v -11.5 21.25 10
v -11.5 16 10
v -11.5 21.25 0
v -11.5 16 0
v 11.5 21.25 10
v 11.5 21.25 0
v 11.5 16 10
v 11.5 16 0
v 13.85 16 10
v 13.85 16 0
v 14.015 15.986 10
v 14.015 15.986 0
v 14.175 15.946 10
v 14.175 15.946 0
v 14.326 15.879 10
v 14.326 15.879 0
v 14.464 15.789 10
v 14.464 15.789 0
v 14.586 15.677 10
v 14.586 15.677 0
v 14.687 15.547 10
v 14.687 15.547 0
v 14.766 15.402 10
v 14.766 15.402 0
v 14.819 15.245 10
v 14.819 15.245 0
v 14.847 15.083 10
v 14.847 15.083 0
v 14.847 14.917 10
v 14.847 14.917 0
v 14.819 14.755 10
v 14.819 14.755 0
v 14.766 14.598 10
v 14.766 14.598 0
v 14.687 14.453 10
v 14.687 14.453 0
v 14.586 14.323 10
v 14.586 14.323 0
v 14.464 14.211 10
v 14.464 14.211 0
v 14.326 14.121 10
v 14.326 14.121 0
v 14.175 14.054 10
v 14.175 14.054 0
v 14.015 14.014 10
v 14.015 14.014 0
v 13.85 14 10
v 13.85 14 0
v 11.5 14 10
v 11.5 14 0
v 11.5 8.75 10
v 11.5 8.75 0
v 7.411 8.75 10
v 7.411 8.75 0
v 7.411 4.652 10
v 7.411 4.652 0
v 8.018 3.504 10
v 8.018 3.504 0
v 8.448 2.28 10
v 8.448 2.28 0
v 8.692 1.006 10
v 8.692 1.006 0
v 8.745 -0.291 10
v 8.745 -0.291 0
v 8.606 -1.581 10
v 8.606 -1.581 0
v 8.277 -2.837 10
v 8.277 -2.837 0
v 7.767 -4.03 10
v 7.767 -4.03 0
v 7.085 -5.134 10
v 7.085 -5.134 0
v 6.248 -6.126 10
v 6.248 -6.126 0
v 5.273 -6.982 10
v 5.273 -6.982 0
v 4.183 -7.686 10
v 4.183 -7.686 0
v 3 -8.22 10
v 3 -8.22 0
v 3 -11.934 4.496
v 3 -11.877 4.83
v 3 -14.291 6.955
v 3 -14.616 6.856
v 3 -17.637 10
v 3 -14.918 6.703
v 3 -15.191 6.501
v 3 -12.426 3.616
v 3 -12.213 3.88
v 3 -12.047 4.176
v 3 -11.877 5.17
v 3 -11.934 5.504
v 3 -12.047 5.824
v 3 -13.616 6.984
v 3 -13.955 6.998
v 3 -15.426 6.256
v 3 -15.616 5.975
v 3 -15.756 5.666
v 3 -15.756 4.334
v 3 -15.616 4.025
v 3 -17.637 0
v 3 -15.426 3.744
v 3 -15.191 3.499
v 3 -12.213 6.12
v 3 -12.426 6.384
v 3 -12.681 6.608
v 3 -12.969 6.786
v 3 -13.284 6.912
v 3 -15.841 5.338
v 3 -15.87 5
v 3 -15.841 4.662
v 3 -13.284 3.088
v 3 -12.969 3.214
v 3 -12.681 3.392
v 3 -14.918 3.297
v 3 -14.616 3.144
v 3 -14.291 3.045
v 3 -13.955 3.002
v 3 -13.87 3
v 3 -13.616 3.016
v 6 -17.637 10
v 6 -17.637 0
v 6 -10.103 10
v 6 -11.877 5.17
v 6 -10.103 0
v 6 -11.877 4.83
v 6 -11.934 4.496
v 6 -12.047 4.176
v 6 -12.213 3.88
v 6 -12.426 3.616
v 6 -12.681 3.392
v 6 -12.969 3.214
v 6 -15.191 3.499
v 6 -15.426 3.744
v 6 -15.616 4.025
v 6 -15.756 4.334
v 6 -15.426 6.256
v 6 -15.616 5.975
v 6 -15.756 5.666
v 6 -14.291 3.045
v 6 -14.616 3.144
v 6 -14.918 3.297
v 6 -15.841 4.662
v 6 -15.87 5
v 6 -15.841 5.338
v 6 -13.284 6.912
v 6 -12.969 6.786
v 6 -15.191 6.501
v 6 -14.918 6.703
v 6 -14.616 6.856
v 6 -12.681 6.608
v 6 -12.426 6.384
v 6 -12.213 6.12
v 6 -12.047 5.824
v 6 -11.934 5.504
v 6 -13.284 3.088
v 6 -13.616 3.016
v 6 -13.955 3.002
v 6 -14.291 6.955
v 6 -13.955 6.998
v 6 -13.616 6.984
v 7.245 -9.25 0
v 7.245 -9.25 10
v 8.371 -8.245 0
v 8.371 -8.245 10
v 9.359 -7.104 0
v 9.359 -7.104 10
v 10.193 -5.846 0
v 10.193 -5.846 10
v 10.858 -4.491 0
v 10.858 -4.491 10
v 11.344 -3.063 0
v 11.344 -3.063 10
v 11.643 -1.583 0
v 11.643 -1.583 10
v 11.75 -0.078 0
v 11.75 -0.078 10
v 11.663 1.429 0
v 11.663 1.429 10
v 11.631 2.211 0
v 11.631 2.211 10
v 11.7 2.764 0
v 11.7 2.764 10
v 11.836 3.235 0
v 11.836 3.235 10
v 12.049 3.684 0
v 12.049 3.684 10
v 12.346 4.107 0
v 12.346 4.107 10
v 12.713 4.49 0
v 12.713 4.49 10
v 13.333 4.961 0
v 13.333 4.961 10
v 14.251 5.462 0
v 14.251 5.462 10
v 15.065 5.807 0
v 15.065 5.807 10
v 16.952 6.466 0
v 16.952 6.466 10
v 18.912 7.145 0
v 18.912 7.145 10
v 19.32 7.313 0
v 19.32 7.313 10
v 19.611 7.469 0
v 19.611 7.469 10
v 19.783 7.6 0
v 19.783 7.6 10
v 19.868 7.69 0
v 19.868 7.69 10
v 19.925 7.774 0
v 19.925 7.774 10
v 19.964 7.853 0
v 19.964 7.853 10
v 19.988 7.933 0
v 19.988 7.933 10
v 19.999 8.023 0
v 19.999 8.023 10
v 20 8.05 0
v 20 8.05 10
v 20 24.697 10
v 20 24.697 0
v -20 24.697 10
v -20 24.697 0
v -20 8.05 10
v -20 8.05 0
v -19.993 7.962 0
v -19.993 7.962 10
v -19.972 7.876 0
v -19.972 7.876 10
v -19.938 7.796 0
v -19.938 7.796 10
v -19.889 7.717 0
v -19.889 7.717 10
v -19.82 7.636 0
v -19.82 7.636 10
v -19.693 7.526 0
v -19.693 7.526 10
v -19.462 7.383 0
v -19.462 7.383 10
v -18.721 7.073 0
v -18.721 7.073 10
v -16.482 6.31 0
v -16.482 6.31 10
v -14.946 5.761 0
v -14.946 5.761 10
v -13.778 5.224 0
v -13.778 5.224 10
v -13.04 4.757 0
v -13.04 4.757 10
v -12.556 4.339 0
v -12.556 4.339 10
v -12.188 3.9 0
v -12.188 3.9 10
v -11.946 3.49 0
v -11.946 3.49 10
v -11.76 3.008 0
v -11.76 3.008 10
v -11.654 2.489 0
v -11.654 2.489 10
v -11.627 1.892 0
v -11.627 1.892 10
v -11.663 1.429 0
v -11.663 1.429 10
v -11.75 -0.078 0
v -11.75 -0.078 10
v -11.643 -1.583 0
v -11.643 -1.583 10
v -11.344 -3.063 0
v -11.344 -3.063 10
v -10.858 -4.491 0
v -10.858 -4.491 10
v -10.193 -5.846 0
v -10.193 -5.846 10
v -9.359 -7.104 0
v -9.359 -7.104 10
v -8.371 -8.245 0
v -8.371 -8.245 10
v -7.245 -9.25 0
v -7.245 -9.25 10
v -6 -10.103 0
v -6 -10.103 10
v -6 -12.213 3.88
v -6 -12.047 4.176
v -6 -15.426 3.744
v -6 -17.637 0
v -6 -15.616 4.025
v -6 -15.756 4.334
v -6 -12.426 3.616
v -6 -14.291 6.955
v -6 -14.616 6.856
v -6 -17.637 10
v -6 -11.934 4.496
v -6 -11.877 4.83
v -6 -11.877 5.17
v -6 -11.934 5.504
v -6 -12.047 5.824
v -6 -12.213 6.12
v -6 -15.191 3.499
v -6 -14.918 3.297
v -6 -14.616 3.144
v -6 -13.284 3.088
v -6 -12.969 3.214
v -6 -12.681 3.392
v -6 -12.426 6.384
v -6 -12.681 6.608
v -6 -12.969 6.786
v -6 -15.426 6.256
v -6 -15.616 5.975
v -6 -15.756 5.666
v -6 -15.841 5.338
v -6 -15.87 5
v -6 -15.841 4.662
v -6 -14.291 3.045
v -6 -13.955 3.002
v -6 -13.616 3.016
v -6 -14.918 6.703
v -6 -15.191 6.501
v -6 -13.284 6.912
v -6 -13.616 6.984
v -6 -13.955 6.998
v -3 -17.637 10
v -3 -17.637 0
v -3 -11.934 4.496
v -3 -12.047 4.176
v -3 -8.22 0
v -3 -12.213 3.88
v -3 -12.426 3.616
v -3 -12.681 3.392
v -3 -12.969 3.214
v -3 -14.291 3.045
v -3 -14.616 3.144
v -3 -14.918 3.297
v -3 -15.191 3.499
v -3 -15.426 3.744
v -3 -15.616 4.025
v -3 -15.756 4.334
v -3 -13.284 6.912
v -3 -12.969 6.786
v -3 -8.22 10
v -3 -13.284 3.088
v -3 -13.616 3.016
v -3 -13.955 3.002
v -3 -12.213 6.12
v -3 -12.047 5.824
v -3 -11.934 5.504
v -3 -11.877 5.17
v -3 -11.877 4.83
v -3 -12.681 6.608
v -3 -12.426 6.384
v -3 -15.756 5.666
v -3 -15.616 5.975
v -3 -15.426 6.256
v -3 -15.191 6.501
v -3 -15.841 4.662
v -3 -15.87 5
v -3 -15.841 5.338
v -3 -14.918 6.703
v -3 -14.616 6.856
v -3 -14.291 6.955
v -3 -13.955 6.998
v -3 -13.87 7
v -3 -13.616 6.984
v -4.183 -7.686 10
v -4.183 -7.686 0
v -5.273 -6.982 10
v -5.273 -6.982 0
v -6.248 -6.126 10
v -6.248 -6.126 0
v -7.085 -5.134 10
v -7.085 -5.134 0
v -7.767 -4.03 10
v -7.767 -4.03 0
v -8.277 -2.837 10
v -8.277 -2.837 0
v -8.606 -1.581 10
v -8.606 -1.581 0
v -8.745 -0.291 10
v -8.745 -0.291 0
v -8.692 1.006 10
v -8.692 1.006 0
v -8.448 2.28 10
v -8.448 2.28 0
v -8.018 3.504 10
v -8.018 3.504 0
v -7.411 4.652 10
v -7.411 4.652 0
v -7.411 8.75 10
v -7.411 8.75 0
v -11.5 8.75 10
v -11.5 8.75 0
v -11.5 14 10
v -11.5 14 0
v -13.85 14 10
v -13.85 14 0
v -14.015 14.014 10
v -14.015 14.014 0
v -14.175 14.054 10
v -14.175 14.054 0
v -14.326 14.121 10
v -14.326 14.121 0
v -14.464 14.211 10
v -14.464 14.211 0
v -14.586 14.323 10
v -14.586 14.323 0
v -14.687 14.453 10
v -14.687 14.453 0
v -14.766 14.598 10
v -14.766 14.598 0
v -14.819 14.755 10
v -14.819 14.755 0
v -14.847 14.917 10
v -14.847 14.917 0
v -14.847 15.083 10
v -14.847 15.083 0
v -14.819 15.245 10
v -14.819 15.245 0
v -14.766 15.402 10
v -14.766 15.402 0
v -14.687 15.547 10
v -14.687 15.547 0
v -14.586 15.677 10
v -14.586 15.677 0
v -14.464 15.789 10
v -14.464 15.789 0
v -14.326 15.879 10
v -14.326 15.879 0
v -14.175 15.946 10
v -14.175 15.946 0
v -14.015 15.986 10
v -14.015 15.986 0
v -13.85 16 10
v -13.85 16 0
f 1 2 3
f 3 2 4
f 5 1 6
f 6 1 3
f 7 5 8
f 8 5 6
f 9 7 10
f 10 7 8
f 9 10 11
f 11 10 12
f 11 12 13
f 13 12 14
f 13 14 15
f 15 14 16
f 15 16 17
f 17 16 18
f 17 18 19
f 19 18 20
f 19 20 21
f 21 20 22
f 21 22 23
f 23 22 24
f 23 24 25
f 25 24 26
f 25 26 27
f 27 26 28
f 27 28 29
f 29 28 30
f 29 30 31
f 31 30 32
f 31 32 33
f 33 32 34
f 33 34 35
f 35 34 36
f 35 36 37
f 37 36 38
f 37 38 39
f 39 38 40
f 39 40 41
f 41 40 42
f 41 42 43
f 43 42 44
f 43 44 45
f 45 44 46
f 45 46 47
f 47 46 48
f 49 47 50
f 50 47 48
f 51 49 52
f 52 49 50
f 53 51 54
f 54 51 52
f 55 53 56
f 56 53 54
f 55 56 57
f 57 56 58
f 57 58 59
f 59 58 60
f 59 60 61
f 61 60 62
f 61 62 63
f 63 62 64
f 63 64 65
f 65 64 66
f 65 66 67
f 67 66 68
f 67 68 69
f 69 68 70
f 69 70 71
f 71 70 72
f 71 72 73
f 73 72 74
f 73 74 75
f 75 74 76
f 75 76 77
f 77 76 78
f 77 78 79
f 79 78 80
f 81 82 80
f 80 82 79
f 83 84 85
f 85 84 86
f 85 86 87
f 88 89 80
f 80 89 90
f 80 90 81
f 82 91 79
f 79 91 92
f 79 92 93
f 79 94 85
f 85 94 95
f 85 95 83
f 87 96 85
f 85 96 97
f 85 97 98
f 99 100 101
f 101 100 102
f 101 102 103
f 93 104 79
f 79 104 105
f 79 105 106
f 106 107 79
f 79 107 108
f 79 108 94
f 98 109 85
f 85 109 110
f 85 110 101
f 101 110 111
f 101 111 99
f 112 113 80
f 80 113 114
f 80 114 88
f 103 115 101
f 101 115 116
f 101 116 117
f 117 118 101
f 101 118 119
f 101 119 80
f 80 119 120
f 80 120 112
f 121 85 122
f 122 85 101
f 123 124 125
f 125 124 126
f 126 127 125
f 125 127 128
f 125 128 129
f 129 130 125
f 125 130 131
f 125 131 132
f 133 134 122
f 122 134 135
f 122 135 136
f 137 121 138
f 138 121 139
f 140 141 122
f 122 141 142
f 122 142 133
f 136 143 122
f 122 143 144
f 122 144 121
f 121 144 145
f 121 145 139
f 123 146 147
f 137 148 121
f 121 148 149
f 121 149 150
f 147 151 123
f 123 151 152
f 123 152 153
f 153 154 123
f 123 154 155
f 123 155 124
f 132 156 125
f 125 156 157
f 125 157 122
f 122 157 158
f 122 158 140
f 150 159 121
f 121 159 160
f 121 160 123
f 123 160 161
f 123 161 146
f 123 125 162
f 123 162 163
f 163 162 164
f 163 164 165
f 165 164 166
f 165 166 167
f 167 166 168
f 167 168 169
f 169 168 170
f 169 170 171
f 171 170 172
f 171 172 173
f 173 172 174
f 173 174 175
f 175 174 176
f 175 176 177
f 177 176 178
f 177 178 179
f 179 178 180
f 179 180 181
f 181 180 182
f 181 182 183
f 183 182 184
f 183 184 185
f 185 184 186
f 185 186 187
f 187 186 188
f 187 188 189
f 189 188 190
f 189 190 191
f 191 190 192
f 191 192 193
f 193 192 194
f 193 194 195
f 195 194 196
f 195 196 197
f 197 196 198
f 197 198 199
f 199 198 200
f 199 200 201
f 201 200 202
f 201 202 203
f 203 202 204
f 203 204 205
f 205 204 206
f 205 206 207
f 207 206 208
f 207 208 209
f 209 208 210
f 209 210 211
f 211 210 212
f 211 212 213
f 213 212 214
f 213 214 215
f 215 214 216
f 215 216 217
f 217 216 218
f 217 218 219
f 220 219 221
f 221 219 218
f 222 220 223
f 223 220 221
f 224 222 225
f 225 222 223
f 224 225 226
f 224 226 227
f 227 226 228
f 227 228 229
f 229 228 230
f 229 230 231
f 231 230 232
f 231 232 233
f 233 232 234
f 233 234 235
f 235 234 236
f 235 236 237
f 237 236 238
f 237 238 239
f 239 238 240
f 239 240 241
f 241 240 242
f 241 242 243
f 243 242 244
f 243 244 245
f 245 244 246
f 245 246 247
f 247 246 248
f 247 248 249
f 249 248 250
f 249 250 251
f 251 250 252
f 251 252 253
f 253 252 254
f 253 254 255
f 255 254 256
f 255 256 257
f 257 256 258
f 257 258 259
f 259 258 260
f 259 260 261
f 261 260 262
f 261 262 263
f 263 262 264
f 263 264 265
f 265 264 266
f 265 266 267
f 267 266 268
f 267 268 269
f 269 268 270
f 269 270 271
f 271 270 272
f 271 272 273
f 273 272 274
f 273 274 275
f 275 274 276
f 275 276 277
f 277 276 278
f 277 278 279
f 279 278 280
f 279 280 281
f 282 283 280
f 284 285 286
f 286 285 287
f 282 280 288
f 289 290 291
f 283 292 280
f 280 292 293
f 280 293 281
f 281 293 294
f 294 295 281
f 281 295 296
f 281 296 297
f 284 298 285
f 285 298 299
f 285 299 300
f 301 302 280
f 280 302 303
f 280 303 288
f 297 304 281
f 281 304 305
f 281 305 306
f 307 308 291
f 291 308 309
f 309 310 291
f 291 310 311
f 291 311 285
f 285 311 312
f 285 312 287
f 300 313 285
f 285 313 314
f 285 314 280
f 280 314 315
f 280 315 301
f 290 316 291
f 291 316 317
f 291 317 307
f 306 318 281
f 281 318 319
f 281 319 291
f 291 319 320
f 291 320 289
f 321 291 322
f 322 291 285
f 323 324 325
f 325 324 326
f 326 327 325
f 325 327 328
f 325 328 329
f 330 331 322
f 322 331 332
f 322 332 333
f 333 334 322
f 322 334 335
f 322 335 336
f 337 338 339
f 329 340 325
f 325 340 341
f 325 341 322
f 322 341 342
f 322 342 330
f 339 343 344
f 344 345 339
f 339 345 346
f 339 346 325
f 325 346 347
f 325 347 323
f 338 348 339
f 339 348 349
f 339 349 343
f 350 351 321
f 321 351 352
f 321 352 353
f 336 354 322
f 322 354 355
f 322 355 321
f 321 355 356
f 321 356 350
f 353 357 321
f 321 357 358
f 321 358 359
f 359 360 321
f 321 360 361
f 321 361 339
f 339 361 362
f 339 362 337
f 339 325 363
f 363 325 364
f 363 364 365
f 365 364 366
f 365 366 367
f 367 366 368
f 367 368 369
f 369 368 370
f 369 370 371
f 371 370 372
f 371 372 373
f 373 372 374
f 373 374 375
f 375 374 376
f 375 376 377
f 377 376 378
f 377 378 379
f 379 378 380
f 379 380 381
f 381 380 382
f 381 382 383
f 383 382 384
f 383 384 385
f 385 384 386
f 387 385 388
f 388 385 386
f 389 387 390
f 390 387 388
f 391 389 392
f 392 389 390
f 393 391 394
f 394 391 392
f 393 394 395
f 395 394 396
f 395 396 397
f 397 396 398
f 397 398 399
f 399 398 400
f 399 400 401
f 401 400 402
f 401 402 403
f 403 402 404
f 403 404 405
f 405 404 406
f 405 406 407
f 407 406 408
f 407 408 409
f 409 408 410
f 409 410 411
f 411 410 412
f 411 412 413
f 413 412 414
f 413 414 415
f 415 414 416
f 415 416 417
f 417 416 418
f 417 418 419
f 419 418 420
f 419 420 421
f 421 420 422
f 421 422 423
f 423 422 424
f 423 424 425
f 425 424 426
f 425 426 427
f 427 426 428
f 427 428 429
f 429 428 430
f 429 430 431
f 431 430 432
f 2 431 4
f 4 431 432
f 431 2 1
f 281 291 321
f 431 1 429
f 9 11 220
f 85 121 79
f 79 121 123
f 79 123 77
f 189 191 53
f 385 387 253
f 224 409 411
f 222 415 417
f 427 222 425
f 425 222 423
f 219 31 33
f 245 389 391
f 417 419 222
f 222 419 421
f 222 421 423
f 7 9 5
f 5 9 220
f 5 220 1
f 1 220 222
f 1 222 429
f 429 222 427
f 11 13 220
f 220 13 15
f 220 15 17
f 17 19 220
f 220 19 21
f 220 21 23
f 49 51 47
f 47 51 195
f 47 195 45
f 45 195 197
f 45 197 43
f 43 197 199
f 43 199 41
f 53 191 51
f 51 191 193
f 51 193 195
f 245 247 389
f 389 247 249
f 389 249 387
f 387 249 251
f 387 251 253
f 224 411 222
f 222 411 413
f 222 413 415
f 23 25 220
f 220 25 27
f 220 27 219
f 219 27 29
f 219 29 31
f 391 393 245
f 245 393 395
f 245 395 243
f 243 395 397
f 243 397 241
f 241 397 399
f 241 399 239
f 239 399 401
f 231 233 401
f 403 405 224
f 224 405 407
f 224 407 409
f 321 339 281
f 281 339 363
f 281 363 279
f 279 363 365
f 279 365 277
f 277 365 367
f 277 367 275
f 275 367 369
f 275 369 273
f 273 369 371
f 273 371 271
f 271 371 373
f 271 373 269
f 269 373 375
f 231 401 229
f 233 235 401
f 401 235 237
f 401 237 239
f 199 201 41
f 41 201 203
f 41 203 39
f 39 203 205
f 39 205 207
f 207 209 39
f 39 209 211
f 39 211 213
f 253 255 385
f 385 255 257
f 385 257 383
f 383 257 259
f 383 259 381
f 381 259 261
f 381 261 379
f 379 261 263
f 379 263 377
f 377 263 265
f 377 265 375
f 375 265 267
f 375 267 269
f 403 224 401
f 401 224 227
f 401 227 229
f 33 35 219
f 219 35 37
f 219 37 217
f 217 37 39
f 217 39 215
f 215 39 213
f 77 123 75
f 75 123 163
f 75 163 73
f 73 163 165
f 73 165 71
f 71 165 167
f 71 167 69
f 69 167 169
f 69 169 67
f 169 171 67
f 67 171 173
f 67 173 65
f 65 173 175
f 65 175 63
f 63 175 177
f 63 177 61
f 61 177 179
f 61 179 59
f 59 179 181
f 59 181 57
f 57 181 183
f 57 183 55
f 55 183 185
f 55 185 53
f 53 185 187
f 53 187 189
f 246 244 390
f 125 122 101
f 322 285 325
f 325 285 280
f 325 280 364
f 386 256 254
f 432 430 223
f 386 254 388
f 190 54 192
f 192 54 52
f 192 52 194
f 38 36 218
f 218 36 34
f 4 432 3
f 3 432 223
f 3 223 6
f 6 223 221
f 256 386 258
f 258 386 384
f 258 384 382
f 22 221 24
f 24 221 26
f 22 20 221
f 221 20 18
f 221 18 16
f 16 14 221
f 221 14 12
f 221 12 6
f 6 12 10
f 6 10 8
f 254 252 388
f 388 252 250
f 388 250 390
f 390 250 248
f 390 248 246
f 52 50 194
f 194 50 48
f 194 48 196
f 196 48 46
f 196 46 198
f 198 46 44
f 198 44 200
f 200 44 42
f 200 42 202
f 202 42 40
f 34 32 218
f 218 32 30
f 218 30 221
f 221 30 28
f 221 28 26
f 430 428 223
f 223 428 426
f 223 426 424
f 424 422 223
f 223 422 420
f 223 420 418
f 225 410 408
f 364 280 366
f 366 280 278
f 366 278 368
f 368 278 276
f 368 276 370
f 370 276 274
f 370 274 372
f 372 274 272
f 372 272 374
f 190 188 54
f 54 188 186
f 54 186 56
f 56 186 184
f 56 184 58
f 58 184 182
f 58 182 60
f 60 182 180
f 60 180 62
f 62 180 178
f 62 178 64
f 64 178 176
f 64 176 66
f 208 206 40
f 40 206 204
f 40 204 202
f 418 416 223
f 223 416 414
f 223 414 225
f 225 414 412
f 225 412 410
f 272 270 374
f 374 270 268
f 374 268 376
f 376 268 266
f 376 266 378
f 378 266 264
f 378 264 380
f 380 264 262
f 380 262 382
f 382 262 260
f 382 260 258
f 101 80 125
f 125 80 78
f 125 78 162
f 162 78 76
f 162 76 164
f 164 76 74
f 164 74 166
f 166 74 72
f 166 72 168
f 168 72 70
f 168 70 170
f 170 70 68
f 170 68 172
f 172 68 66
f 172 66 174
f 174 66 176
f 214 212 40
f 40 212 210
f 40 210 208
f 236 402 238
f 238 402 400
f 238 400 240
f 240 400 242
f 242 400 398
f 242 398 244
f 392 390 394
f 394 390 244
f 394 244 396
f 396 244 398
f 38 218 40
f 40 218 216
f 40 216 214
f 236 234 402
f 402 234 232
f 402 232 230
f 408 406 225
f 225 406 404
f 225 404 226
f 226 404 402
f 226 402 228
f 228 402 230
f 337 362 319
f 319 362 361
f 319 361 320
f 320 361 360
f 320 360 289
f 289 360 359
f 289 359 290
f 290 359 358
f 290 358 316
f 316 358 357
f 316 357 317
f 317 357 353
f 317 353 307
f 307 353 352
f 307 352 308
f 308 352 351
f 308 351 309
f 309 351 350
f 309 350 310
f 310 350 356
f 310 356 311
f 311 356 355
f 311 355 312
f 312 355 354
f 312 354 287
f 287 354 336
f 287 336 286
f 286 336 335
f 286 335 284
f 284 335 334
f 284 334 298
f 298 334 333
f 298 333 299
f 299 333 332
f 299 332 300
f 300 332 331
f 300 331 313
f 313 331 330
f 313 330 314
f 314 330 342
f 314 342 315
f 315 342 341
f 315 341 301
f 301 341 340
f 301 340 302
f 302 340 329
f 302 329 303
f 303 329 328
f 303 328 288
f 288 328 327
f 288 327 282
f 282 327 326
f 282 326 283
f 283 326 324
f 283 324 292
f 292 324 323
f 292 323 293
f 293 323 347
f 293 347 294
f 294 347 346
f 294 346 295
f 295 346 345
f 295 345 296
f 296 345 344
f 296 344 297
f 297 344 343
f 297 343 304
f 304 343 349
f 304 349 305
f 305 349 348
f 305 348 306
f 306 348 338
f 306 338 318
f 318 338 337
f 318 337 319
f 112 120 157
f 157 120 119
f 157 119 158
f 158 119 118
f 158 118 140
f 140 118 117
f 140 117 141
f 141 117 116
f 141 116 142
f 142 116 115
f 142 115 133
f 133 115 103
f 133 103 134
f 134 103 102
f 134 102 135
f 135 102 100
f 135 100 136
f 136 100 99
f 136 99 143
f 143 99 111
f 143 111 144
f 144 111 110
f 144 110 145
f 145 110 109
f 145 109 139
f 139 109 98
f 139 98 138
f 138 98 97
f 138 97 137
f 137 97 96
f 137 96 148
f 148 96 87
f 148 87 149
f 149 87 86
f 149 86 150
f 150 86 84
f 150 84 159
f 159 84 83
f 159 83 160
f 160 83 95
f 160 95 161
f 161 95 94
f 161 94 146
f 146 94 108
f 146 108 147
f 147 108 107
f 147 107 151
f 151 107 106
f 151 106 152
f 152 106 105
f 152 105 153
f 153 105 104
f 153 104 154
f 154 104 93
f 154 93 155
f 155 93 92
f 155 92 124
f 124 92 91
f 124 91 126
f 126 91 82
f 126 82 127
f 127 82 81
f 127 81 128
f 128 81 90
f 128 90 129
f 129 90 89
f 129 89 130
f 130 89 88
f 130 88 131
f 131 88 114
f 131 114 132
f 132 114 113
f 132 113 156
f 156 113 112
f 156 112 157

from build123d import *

# Parameters (mm, degrees)
SALIENTE_EXTRUIR1_DEPTH = 10
CROQUIS2_R              = 2
CORTAR_EXTRUIR1_DEPTH   = 27.0000001


with BuildPart() as part:
    # Croquis1 → Saliente-Extruir1 (new body)
    with BuildSketch(Plane.XY):
        with BuildLine():
            Line((11.5, 21.25), (-11.5, 21.25))
            Line((-11.5, 21.25), (-11.5, 16))
            Line((-11.5, 16), (-13.85, 16))
            ThreePointArc((-13.85, 16), (-14.85, 15), (-13.85, 14))
            Line((-13.85, 14), (-11.5, 14))
            Line((-11.5, 14), (-11.5, 8.75))
            Line((-11.5, 8.75), (-7.411101784, 8.75))
            Line((-7.411101784, 8.75), (-7.411101784, 4.65167393))
            ThreePointArc((-7.411101784, 4.65167393), (-8.277405862, -2.836732661), (-3, -8.219641111))
            Line((-3, -8.219641111), (-3, -17.636996672))
            Line((-3, -17.636996672), (-6, -17.636996672))
            Line((-6, -17.636996672), (-6, -10.102598676))
            ThreePointArc((-6, -10.102598676), (-10.54690786, -5.179308313), (-11.662797517, 1.428864608))
            add(Edge.make_bspline(
                [(-20, 8.049530511), (-20, 7.583404659), (-15.923516269, 5.846853582), (-11.193272378, 5.261261744), (-11.662797517, 1.428864608)],
                knots=[0, 0, 0, 0, 0.136185615, 1, 1, 1, 1], degree=3))
            Line((-20, 8.049530511), (-20, 24.696862388))
            Line((-20, 24.696862388), (20, 24.696862388))
            Line((20, 24.696862388), (20, 8.049530511))
            add(Edge.make_bspline(
                [(20, 8.049530511), (20, 7.583404659), (15.923516269, 5.846853582), (11.193272378, 5.261261744), (11.662797517, 1.428864608)],
                knots=[0, 0, 0, 0, 0.136185615, 1, 1, 1, 1], degree=3))
            ThreePointArc((11.662797517, 1.428864608), (10.54690786, -5.179308313), (6, -10.102598676))
            Line((6, -10.102598676), (6, -17.636996672))
            Line((6, -17.636996672), (3, -17.636996672))
            Line((3, -17.636996672), (3, -8.219641111))
            ThreePointArc((3, -8.219641111), (8.277405862, -2.836732661), (7.411101784, 4.65167393))
            Line((7.411101784, 4.65167393), (7.411101784, 8.75))
            Line((7.411101784, 8.75), (11.5, 8.75))
            Line((11.5, 8.75), (11.5, 14))
            Line((11.5, 14), (13.85, 14))
            ThreePointArc((13.85, 14), (14.85, 15), (13.85, 16))
            Line((13.85, 16), (11.5, 16))
            Line((11.5, 16), (11.5, 21.25))
        make_face()
    extrude(amount=SALIENTE_EXTRUIR1_DEPTH)

    # Croquis2 → Cortar-Extruir1 (cut, through all)
    with BuildSketch(Plane.ZY.offset(6)):
        with Locations((5, -13.869797674)):
            Circle(CROQUIS2_R)
    extrude(amount=-CORTAR_EXTRUIR1_DEPTH, mode=Mode.SUBTRACT)


solid = part.part
